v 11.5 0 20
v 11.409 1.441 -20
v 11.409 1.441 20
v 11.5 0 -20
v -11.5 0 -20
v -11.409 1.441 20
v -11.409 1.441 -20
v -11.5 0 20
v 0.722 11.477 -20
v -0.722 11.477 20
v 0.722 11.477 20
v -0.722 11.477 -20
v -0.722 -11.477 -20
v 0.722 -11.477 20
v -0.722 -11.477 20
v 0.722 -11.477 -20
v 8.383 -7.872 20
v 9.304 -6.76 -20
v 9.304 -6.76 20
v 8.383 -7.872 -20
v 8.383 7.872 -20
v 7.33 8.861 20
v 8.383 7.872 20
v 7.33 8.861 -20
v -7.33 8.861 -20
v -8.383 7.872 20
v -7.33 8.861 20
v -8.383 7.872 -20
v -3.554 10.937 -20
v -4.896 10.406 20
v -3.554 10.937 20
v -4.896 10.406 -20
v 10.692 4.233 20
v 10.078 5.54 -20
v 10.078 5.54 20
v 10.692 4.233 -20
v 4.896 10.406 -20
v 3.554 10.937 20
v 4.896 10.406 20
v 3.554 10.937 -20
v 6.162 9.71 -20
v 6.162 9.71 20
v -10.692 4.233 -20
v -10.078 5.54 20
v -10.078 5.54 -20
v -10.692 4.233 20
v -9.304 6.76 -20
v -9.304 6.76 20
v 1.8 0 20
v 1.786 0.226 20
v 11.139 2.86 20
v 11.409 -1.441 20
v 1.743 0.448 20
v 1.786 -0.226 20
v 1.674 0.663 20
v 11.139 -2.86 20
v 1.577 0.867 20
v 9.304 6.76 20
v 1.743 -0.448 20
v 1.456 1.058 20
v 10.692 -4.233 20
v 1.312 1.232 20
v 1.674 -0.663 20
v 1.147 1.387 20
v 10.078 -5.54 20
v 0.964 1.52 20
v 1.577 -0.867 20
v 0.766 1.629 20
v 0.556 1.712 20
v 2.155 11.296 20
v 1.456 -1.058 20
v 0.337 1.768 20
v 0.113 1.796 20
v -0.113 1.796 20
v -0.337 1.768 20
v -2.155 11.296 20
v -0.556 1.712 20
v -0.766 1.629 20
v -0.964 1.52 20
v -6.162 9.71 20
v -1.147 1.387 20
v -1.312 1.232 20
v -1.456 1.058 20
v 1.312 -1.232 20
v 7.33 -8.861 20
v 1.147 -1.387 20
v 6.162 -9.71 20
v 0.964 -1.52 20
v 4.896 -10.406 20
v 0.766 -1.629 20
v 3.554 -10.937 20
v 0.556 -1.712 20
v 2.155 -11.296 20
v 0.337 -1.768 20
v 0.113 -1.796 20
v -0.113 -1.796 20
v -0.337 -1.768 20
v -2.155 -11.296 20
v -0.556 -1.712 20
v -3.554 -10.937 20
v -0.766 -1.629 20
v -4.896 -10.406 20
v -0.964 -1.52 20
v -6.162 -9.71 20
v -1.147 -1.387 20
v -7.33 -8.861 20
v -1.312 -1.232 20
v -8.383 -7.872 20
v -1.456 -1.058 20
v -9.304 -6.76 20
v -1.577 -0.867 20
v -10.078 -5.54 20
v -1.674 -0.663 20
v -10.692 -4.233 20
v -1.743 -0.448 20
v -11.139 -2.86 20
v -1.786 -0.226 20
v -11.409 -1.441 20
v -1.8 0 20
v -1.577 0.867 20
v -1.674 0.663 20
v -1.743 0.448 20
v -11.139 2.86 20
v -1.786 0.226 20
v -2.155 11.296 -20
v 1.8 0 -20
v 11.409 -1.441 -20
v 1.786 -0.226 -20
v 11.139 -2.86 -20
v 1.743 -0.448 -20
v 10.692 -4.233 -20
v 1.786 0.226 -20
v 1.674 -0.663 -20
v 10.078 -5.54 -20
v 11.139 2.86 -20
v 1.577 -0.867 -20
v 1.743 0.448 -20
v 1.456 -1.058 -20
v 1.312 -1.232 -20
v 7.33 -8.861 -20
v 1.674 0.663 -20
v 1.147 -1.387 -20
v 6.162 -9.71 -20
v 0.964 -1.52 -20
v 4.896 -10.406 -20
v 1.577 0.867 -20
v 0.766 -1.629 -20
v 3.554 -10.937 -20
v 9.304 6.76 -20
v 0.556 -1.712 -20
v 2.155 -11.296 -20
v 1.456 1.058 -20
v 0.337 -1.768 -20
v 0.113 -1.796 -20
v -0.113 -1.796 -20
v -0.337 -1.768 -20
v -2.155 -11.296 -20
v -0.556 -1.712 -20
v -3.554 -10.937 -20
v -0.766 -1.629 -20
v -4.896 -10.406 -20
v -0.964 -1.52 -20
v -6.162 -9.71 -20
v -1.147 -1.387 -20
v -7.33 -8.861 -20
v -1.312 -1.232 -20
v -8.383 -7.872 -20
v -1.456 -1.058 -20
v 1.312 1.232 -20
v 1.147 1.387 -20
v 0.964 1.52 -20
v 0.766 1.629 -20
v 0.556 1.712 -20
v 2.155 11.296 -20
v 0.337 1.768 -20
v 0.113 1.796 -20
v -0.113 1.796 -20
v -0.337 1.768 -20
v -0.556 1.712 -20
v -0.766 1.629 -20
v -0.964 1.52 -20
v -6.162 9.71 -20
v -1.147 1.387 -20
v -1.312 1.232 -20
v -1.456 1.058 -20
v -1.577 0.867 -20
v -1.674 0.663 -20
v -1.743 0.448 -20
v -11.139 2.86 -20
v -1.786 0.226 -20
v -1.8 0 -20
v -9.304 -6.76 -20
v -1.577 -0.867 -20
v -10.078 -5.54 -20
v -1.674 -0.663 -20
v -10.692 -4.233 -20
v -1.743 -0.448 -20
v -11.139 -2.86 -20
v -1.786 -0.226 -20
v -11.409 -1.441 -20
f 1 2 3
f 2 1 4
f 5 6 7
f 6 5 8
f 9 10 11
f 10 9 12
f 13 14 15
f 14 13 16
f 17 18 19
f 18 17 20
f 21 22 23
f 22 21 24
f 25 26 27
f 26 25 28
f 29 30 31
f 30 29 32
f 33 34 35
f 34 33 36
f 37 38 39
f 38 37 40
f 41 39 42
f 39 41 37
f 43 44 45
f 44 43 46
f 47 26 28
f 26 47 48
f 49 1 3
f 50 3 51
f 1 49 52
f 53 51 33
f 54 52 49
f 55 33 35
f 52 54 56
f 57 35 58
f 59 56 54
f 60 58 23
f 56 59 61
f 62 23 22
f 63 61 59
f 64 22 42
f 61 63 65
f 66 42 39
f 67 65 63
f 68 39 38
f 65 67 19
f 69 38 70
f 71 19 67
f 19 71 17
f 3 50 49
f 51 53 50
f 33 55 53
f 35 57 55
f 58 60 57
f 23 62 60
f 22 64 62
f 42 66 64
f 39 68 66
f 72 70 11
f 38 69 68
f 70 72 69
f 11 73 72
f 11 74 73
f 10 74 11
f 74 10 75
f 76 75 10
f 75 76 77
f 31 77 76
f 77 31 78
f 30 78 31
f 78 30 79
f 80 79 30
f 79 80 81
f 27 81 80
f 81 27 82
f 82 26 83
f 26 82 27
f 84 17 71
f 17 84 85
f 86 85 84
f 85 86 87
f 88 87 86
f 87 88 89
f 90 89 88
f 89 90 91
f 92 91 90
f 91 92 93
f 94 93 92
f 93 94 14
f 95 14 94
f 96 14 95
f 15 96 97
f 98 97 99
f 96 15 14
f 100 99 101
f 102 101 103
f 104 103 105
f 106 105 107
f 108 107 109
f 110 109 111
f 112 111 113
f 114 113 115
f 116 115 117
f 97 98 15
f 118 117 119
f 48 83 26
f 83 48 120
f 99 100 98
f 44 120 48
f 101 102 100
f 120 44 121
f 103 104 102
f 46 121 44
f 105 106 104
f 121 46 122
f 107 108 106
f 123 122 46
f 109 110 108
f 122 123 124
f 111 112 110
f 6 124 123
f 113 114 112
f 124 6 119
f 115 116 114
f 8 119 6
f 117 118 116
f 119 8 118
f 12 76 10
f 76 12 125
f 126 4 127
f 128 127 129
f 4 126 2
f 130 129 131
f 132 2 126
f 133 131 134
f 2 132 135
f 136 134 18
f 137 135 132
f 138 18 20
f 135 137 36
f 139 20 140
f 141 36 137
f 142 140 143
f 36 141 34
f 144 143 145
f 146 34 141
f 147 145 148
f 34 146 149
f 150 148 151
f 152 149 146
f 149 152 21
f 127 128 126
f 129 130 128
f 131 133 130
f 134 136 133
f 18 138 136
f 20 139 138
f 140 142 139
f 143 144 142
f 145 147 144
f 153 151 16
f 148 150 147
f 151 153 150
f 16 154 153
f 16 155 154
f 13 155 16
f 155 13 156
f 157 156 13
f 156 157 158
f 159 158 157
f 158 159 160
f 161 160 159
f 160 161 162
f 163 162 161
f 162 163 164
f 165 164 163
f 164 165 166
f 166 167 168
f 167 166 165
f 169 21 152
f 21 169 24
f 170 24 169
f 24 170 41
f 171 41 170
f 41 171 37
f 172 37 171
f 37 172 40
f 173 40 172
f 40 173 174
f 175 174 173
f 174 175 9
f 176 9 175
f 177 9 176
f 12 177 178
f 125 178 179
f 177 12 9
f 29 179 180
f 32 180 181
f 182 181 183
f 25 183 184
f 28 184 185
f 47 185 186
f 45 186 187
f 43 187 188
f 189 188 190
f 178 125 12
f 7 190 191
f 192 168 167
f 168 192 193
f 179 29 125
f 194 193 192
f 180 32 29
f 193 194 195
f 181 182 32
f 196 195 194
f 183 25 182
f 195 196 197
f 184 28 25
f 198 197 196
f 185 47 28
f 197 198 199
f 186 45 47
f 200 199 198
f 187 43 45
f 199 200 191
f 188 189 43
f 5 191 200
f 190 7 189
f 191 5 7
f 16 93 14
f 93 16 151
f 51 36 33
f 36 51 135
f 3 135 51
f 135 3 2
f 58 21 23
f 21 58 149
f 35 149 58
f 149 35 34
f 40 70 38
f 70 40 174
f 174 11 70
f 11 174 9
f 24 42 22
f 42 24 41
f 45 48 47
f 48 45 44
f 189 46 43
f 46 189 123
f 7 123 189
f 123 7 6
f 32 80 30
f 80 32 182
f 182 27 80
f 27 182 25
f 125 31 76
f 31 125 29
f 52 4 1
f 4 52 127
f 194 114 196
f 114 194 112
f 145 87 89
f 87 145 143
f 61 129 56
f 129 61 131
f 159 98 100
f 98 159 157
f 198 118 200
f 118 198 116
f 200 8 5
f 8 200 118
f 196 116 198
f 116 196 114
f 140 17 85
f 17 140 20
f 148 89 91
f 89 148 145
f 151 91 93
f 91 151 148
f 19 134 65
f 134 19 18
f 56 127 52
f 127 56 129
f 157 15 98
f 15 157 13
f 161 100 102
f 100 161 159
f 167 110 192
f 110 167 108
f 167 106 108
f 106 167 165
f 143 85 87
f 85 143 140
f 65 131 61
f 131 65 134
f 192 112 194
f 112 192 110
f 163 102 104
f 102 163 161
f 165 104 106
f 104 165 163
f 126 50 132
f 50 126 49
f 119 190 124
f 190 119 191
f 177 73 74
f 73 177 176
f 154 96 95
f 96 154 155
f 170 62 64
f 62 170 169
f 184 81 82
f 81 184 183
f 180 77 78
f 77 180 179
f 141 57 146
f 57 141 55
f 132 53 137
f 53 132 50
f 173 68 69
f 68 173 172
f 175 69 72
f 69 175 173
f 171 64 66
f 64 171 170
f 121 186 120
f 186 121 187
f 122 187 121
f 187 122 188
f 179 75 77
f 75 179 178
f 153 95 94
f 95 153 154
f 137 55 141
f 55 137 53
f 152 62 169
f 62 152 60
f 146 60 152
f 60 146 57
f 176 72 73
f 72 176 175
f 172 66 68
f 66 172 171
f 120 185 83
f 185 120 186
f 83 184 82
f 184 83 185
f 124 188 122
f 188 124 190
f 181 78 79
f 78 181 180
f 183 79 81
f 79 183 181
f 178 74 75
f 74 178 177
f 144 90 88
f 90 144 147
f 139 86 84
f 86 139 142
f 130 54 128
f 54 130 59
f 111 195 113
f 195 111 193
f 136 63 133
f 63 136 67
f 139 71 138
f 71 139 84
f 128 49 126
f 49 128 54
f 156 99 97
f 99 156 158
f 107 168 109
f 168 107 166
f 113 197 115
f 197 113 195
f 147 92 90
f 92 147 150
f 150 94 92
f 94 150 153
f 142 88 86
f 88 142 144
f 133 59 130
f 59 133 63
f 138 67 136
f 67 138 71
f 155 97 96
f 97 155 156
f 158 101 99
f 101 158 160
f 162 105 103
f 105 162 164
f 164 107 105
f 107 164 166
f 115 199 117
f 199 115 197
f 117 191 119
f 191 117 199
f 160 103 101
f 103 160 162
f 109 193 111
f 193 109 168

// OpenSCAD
$fn = 50;


difference() {
	union() {
		translate(v = [0, 0, -20.0000000000]) {
			cylinder(h = 40, r = 11.5000000000);
		}
	}
	union() {
		translate(v = [0, 0, -100.0000000000]) {
			cylinder(h = 200, r = 1.8000000000);
		}
	}
}
